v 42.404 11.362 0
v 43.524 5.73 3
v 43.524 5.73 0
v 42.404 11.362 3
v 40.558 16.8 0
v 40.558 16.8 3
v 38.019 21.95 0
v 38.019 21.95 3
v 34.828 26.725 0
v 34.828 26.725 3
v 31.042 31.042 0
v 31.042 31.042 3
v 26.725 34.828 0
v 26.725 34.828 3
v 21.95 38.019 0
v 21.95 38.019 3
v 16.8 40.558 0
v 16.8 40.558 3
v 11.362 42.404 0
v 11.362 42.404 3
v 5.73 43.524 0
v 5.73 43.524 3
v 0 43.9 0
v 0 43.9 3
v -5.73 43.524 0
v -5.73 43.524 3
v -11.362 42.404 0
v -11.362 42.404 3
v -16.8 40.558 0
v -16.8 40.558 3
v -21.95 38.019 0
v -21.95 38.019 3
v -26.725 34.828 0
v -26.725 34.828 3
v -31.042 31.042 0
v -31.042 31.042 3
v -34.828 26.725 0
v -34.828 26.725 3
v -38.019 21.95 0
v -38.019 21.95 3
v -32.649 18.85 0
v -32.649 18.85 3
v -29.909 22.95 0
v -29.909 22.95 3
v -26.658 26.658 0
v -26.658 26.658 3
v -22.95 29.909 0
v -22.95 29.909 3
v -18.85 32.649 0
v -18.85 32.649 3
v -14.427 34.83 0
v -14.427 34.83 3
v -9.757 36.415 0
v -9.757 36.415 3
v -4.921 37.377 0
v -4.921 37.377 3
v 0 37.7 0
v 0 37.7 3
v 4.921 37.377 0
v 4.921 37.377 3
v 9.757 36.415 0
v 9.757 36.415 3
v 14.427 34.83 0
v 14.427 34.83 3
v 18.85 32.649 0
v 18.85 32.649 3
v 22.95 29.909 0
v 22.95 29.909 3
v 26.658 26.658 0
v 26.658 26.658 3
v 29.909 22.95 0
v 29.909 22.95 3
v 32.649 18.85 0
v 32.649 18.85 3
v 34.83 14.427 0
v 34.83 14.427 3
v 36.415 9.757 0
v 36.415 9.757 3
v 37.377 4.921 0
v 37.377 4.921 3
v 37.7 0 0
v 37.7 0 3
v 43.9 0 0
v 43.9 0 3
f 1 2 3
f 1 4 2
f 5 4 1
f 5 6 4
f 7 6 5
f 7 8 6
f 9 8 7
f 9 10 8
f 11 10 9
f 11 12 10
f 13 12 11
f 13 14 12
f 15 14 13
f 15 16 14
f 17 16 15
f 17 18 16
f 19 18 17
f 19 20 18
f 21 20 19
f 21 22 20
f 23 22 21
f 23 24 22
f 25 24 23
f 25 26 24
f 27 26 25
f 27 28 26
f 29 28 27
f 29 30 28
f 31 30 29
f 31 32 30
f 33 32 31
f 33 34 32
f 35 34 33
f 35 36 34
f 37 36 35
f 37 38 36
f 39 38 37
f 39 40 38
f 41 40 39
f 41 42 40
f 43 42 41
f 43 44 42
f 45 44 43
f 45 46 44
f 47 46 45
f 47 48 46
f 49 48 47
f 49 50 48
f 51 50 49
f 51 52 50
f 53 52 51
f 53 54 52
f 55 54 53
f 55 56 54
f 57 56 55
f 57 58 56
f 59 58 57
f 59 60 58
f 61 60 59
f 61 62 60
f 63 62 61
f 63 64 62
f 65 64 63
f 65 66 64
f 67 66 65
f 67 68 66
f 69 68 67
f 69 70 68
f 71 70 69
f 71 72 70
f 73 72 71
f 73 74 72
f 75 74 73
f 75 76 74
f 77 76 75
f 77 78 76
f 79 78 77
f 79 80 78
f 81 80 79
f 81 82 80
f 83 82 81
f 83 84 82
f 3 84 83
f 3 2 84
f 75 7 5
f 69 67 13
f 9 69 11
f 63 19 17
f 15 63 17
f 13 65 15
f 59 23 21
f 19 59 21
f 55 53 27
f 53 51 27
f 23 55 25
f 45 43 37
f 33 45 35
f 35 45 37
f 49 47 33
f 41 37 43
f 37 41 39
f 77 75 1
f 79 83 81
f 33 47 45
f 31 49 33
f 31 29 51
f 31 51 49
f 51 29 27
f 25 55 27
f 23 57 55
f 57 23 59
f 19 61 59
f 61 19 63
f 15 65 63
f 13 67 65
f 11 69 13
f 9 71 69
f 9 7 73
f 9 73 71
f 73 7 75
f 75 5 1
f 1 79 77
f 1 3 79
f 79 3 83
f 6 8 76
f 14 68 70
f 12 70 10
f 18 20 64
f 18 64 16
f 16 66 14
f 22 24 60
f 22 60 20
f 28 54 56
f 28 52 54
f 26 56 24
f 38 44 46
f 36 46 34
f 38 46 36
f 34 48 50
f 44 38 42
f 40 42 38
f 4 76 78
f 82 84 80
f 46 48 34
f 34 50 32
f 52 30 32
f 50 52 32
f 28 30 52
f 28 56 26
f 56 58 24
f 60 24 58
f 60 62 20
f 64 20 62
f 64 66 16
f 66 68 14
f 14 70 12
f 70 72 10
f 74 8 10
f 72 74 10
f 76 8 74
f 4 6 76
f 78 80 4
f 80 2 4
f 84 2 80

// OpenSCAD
radius = 37.7;
angles = [0, 150];
width = 6.2;
fn = 48;

module sector(radius, angles, fn = 24) {
    r = radius / cos(180 / fn);
    step = -360 / fn;

    points = concat([[0, 0]],
        [for(a = [angles[0] : step : angles[1] - 360]) 
            [r * cos(a), r * sin(a)]
        ],
        [[r * cos(angles[1]), r * sin(angles[1])]]
    );

    difference() {
        circle(radius, $fn = fn);
        polygon(points);
    }
}

module arc(radius, angles, width = 1, fn = 24) {
    difference() {
        sector(radius + width, angles, fn);
        sector(radius, angles, fn);
    }
} 

linear_extrude(3) arc(radius, angles, width, fn);
